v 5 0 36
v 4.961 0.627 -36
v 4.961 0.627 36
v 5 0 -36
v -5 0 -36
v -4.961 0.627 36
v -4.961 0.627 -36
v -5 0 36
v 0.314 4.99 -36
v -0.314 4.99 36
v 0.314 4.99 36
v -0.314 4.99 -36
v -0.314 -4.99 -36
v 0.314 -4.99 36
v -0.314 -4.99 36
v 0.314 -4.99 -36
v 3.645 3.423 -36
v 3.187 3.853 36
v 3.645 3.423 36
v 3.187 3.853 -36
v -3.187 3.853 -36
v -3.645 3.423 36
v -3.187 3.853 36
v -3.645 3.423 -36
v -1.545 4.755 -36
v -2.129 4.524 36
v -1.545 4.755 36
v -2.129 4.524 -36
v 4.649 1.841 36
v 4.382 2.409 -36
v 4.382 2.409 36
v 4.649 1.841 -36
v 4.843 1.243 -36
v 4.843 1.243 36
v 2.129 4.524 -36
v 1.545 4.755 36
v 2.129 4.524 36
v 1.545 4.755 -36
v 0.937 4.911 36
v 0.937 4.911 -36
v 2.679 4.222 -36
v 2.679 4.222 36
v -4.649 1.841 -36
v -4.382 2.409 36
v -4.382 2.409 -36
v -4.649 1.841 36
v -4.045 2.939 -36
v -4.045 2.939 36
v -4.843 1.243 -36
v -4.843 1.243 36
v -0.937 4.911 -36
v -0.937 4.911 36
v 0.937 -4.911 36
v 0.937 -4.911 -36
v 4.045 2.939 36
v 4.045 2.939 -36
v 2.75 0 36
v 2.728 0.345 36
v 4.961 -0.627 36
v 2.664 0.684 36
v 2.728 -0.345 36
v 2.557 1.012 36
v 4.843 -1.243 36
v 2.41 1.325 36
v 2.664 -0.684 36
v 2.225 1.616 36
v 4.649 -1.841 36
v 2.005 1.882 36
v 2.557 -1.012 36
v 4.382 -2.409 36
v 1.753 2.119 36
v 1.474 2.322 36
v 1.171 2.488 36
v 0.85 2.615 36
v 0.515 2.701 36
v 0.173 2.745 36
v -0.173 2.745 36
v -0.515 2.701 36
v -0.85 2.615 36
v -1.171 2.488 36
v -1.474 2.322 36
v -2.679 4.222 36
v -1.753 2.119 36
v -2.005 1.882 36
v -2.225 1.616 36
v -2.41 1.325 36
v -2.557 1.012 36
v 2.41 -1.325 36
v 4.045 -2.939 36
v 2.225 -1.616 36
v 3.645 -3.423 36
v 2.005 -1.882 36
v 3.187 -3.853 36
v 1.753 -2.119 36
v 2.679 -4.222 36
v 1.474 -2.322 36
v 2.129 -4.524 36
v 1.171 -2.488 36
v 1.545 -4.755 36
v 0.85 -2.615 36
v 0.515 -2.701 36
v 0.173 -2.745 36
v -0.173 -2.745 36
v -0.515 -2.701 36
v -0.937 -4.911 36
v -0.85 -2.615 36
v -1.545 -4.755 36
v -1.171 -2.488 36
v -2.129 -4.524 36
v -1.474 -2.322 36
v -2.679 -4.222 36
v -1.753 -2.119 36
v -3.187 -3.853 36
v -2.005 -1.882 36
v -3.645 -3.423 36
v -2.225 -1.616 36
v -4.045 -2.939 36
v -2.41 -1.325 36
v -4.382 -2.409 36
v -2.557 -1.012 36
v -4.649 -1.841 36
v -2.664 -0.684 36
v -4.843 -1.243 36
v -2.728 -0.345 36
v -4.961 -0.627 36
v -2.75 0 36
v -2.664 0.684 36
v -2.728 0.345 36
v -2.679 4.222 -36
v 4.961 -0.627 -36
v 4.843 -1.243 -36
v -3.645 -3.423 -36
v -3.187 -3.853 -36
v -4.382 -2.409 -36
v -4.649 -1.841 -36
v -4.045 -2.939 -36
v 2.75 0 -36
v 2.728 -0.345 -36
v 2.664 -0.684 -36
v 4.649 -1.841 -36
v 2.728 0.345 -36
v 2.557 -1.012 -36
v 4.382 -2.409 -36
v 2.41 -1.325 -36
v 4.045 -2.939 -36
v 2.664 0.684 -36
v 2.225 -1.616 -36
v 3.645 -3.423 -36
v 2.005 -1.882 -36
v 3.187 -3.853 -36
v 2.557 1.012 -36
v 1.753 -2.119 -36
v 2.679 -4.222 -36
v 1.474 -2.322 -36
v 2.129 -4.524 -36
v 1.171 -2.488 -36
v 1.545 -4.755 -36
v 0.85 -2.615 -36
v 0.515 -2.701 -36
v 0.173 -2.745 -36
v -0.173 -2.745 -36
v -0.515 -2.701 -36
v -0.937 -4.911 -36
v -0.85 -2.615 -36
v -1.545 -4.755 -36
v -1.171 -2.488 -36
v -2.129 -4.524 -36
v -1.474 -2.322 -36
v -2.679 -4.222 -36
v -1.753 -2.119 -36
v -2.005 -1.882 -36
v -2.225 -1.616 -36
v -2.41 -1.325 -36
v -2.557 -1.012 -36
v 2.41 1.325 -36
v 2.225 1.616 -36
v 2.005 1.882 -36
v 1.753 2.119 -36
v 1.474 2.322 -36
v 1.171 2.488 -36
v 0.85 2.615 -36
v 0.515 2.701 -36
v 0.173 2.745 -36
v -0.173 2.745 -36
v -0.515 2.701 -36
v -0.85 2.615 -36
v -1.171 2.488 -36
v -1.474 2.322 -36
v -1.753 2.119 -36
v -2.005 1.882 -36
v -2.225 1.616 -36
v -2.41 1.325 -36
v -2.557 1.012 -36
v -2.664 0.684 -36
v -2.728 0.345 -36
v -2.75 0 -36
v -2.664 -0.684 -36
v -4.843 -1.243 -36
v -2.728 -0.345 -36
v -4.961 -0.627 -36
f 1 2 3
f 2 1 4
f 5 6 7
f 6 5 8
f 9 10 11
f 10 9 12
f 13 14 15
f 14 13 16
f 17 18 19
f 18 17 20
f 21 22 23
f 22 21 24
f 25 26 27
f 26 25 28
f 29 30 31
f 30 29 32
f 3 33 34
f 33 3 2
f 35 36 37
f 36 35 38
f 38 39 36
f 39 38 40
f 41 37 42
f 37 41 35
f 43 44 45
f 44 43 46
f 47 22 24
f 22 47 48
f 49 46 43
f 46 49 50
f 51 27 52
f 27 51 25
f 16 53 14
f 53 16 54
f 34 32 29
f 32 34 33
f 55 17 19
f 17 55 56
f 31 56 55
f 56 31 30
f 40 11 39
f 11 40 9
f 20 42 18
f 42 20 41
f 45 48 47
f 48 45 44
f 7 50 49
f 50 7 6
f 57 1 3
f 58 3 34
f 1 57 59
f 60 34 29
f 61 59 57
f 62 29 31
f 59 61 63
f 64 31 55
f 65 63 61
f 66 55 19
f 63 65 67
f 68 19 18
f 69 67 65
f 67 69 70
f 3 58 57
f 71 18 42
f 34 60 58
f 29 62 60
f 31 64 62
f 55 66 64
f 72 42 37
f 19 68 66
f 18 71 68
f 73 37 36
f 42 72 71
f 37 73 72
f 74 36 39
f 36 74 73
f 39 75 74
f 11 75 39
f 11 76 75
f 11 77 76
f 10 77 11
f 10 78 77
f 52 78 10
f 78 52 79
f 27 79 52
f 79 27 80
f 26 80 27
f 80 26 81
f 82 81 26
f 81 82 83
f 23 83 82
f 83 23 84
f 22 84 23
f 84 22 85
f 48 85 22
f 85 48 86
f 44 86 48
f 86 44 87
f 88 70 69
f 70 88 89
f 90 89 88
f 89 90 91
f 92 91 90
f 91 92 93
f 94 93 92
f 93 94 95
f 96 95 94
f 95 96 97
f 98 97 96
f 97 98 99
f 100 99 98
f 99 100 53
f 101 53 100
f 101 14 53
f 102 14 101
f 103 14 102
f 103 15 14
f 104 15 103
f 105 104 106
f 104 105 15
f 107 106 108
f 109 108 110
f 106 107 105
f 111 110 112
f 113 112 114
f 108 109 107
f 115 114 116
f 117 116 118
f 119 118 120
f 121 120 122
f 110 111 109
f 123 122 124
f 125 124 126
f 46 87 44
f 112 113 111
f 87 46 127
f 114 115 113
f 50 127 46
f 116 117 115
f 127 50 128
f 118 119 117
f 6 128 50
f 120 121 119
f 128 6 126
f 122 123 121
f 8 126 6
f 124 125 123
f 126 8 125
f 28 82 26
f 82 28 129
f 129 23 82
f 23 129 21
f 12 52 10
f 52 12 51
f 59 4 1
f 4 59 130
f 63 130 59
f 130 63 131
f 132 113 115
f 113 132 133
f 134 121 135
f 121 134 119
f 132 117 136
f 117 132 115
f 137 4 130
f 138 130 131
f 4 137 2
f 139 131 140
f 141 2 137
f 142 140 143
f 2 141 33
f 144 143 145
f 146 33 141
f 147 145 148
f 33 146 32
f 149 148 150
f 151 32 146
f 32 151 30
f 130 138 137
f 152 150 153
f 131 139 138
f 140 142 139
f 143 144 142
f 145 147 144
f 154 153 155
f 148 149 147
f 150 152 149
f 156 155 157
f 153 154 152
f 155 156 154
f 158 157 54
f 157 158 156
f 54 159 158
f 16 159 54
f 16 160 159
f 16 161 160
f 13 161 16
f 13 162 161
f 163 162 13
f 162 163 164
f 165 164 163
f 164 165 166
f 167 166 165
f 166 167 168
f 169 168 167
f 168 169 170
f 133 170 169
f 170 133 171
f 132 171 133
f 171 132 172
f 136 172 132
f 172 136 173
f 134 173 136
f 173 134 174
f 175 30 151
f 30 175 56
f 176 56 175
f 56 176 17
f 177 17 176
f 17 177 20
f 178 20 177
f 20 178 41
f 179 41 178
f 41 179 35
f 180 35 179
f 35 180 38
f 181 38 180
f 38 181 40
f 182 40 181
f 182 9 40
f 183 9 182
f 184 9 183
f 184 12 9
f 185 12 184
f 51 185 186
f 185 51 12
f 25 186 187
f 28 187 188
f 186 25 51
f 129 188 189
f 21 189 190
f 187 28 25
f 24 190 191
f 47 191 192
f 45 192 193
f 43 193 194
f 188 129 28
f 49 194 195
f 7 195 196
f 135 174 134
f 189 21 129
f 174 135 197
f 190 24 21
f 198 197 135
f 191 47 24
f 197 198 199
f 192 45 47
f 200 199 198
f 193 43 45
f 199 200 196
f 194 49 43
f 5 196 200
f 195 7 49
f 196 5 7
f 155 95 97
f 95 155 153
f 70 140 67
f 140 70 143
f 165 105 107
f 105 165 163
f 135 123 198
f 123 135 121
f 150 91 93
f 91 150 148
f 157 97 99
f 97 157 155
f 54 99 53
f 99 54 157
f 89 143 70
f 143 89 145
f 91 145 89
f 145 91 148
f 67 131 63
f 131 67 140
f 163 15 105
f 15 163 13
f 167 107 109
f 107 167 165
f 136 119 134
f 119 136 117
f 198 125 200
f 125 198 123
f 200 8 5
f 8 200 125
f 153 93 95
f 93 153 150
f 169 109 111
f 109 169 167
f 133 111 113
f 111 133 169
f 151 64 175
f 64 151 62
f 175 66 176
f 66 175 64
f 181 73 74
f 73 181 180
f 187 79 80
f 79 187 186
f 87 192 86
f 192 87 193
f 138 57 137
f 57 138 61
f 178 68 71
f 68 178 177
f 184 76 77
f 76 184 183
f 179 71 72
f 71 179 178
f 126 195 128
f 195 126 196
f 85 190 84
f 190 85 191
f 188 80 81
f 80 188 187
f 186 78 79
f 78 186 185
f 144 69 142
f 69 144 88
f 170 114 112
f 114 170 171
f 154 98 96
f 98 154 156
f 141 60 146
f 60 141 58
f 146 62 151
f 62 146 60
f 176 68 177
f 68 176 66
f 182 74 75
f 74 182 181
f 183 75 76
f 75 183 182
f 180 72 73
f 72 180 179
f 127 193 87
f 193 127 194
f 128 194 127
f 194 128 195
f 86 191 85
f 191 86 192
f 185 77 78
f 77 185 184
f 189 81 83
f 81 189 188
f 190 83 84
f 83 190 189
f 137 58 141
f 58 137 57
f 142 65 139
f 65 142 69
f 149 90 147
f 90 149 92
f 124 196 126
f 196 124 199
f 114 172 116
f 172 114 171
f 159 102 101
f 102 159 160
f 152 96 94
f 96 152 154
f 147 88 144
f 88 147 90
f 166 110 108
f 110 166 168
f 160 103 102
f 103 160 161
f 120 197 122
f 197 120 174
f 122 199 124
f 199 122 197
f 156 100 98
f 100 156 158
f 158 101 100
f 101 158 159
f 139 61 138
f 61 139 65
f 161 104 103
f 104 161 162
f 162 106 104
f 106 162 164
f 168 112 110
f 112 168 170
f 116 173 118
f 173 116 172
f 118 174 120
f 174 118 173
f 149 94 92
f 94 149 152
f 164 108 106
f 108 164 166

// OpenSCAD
$fn = 50;


difference() {
	union() {
		translate(v = [0, 0, -36.0000000000]) {
			cylinder(h = 72, r = 5.0000000000);
		}
	}
	union() {
		translate(v = [0, 0, -100.0000000000]) {
			cylinder(h = 200, r = 2.7500000000);
		}
	}
}
